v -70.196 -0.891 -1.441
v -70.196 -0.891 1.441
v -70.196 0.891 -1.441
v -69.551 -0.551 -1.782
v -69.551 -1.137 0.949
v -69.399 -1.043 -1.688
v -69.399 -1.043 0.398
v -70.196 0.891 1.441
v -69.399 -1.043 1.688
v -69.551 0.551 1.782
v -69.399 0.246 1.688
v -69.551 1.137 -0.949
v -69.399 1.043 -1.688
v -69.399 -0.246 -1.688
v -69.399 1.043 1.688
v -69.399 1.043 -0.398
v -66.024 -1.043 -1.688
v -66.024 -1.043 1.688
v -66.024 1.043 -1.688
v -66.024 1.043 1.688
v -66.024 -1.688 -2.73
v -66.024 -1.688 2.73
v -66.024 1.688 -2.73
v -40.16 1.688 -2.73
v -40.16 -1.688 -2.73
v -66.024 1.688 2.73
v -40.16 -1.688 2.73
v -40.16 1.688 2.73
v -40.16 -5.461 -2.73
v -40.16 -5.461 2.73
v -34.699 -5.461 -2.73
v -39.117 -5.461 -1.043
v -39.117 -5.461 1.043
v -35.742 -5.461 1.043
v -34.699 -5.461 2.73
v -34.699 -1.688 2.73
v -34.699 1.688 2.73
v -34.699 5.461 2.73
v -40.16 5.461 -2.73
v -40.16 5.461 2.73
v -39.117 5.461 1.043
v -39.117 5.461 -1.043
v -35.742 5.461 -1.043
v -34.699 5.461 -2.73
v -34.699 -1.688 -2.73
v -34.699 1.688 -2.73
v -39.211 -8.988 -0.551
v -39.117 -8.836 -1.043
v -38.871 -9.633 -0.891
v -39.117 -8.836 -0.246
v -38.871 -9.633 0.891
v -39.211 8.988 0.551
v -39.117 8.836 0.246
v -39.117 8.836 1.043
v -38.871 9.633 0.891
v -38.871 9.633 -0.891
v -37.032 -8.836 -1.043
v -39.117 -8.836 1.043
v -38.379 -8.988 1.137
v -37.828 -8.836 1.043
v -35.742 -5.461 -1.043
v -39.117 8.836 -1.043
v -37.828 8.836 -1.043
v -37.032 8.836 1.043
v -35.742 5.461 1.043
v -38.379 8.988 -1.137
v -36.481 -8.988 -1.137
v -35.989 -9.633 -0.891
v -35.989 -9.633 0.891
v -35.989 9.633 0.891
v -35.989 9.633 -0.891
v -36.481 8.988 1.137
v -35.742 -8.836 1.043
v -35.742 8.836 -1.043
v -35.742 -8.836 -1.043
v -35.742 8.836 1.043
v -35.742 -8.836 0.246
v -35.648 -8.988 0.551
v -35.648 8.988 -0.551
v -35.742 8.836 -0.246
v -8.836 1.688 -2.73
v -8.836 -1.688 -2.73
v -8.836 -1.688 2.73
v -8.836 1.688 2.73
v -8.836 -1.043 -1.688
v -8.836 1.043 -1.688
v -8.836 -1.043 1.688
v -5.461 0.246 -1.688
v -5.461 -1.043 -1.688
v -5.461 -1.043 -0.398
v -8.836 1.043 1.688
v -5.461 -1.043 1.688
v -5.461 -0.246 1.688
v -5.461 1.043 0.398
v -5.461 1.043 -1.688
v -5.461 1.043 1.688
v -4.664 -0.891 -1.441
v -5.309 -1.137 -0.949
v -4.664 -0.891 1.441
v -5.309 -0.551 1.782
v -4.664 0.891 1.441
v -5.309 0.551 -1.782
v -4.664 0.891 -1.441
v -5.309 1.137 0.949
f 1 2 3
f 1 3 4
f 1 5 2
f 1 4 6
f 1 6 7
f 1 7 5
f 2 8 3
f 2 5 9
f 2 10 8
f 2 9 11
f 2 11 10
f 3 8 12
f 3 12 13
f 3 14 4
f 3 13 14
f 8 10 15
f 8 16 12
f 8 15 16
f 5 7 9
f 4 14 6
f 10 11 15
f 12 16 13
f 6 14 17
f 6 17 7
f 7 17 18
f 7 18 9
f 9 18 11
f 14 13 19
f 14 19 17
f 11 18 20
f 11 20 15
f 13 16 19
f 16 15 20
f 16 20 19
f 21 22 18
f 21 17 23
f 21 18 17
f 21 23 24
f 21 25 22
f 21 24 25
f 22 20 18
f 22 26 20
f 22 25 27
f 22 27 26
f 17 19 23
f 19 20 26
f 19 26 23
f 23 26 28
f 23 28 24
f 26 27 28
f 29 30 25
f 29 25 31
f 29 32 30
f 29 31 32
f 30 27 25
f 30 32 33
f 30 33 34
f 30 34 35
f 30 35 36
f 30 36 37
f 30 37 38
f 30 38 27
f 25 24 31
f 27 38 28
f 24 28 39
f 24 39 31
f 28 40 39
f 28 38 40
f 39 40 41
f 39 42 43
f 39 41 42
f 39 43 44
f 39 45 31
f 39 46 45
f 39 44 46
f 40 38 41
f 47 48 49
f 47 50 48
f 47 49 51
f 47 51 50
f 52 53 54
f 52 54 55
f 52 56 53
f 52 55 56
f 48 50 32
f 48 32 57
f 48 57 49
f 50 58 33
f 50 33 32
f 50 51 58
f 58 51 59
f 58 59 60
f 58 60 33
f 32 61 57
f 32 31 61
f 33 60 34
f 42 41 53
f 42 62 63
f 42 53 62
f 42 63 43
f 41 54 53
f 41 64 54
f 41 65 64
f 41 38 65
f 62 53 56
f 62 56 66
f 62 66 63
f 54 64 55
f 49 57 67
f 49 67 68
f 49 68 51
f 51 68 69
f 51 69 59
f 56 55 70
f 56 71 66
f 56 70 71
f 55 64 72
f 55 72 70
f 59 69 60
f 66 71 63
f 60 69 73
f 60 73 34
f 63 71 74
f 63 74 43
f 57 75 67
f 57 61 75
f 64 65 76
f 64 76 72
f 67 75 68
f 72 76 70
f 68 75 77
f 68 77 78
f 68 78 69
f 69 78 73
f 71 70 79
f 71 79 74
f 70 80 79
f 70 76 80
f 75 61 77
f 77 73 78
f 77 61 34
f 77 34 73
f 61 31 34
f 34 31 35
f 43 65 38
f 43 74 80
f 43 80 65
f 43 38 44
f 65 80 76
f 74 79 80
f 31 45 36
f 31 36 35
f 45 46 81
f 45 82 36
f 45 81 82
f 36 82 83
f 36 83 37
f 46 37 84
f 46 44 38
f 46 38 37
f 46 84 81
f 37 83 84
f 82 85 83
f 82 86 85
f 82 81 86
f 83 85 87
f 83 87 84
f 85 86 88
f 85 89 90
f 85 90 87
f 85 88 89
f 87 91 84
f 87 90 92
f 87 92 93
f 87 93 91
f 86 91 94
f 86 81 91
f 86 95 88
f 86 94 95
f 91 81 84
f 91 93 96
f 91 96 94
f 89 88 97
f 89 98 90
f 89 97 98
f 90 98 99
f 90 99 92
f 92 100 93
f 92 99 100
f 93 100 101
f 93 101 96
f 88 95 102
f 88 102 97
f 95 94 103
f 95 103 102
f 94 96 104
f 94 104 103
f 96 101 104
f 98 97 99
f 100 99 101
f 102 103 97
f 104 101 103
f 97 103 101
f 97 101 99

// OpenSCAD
sc=(4+2*sqrt(5))/cos(16.5);
points=[[ -8.47213595499958, 0, 0 ],[ -7.94427190999916, -0.163118960624632, -0.100813061875577 ],[ -7.94427190999916, -0.163118960624632, 0.100813061875577 ],[ -7.94427190999916, 0.163118960624632, -0.100813061875577 ],[ -7.94427190999916, 0.163118960624632, 0.100813061875577 ],[ -7.871322893124, -0.201626123751154, 0.0623058987490541 ],[ -7.871322893124, -0.107390870623792, -0.128677106875998 ],[ -7.871322893124, 0.107390870623792, 0.128677106875998 ],[ -7.871322893124, 0.201626123751154, -0.0623058987490541 ],[ -7.85410196624968, -0.190983005625053, -0.118033988749895 ],[ -7.85410196624968, -0.190983005625053, 0.0278640450004204 ],[ -7.85410196624968, -0.190983005625053, 0.118033988749895 ],[ -7.85410196624968, -0.0450849718747373, -0.118033988749895 ],[ -7.85410196624968, 0.0450849718747373, 0.118033988749895 ],[ -7.85410196624968, 0.190983005625053, -0.118033988749895 ],[ -7.85410196624968, 0.190983005625053, -0.0278640450004204 ],[ -7.85410196624968, 0.190983005625053, 0.118033988749895 ],[ -7.66311896062463, 0, -1.30901699437495 ],[ -7.47213595499958, -0.309016994374947, -0.190983005625053 ],[ -7.47213595499958, -0.309016994374947, 0.190983005625053 ],[ -7.47213595499958, -0.190983005625053, -0.118033988749895 ],[ -7.47213595499958, -0.190983005625053, 0.118033988749895 ],[ -7.47213595499958, 0.190983005625053, -0.118033988749895 ],[ -7.47213595499958, 0.190983005625053, 0.118033988749895 ],[ -7.47213595499958, 0.309016994374947, -0.190983005625053 ],[ -7.47213595499958, 0.309016994374947, 0.190983005625053 ],[ -4.54508497187474, -0.309016994374947, -0.618033988749895 ],[ -4.54508497187474, -0.309016994374947, 0.618033988749895 ],[ -4.54508497187474, 0.309016994374947, -0.618033988749895 ],[ -4.54508497187474, 0.309016994374947, 0.618033988749895 ],[ -4.43769410125095, -0.0623058987490541, 1.01722092687432 ],[ -4.43769410125095, 0.0623058987490541, -1.01722092687432 ],[ -4.42705098312484, -0.118033988749895, -1 ],[ -4.42705098312484, -0.118033988749895, -0.618033988749895 ],[ -4.42705098312484, -0.118033988749895, 0.618033988749895 ],[ -4.42705098312484, -0.118033988749895, 1 ],[ -4.42705098312484, -0.0278640450004204, 1 ],[ -4.42705098312484, 0.0278640450004204, -1 ],[ -4.42705098312484, 0.118033988749895, -1 ],[ -4.42705098312484, 0.118033988749895, -0.618033988749895 ],[ -4.42705098312484, 0.118033988749895, 0.618033988749895 ],[ -4.42705098312484, 0.118033988749895, 1 ],[ -4.39918693812442, -0.100813061875577, -1.09016994374947 ],[ -4.39918693812442, -0.100813061875577, 1.09016994374947 ],[ -4.39918693812442, 0.100813061875577, -1.09016994374947 ],[ -4.39918693812442, 0.100813061875577, 1.09016994374947 ],[ -4.34345884812358, -0.128677106875998, -1.01722092687432 ],[ -4.34345884812358, 0.128677106875998, 1.01722092687432 ],[ -4.28115294937453, -0.118033988749895, -1 ],[ -4.28115294937453, 0.118033988749895, 1 ],[ -4.23606797749979, 0, -1.61803398874989 ],[ -4.23606797749979, 0, 1.61803398874989 ],[ -4.19098300562505, -0.118033988749895, 1 ],[ -4.19098300562505, 0.118033988749895, -1 ],[ -4.128677106876, -0.128677106875998, 1.01722092687432 ],[ -4.128677106876, 0.128677106875998, -1.01722092687432 ],[ -4.07294901687516, -0.100813061875577, -1.09016994374947 ],[ -4.07294901687516, -0.100813061875577, 1.09016994374947 ],[ -4.07294901687516, 0.100813061875577, -1.09016994374947 ],[ -4.07294901687516, 0.100813061875577, 1.09016994374947 ],[ -4.04508497187474, -0.118033988749895, -1 ],[ -4.04508497187474, -0.118033988749895, -0.618033988749895 ],[ -4.04508497187474, -0.118033988749895, 0.618033988749895 ],[ -4.04508497187474, -0.118033988749895, 1 ],[ -4.04508497187474, -0.0278640450004204, -1 ],[ -4.04508497187474, 0.0278640450004204, 1 ],[ -4.04508497187474, 0.118033988749895, -1 ],[ -4.04508497187474, 0.118033988749895, -0.618033988749895 ],[ -4.04508497187474, 0.118033988749895, 0.618033988749895 ],[ -4.04508497187474, 0.118033988749895, 1 ],[ -4.03444185374863, -0.0623058987490541, -1.01722092687432 ],[ -4.03444185374863, 0.0623058987490541, 1.01722092687432 ],[ -3.92705098312484, -0.309016994374947, -0.618033988749895 ],[ -3.92705098312484, -0.309016994374947, 0.618033988749895 ],[ -3.92705098312484, 0.309016994374947, -0.618033988749895 ],[ -3.92705098312484, 0.309016994374947, 0.618033988749895 ],[ -1, -0.309016994374947, -0.190983005625053 ],[ -1, -0.309016994374947, 0.190983005625053 ],[ -1, -0.190983005625053, -0.118033988749895 ],[ -1, -0.190983005625053, 0.118033988749895 ],[ -1, 0.190983005625053, -0.118033988749895 ],[ -1, 0.190983005625053, 0.118033988749895 ],[ -1, 0.309016994374947, -0.190983005625053 ],[ -1, 0.309016994374947, 0.190983005625053 ],[ -0.809016994374947, 0, 1.30901699437495 ],[ -0.618033988749895, -0.190983005625053, -0.118033988749895 ],[ -0.618033988749895, -0.190983005625053, -0.0278640450004204 ],[ -0.618033988749895, -0.190983005625053, 0.118033988749895 ],[ -0.618033988749895, -0.0450849718747373, 0.118033988749895 ],[ -0.618033988749895, 0.0450849718747373, -0.118033988749895 ],[ -0.618033988749895, 0.190983005625053, -0.118033988749895 ],[ -0.618033988749895, 0.190983005625053, 0.0278640450004204 ],[ -0.618033988749895, 0.190983005625053, 0.118033988749895 ],[ -0.600813061875577, -0.201626123751154, -0.0623058987490541 ],[ -0.600813061875577, -0.107390870623792, 0.128677106875998 ],[ -0.600813061875577, 0.107390870623792, -0.128677106875998 ],[ -0.600813061875577, 0.201626123751154, 0.0623058987490541 ],[ -0.52786404500042, -0.163118960624632, -0.100813061875577 ],[ -0.52786404500042, -0.163118960624632, 0.100813061875577 ],[ -0.52786404500042, 0.163118960624632, -0.100813061875577 ],[ -0.52786404500042, 0.163118960624632, 0.100813061875577 ],[ 0, 0, 0 ]];

scale(sc) rotate([90.000000,0,0]) rotate([0,0,0.000000]) render() {
    color("#00993F") polyhedron(points,faces=[[ 21, 10, 11 ],[ 20, 9, 10 ],[ 12, 14, 3 ],[ 21, 20, 10 ],[ 1, 9, 6 ],[ 10, 9, 1 ],[ 2, 5, 1 ],[ 11, 5, 2 ],[ 15, 16, 4 ],[ 13, 11, 2 ],[ 23, 16, 15 ],[ 9, 20, 12 ],[ 6, 12, 3 ],[ 16, 23, 13 ],[ 7, 16, 13 ],[ 3, 8, 4 ],[ 4, 16, 7 ],[ 7, 13, 2 ],[ 23, 21, 13 ],[ 3, 4, 2, 1 ],[ 13, 21, 11 ],[ 8, 15, 4 ],[ 3, 1, 6 ],[ 5, 11, 10 ],[ 6, 9, 12 ],[ 8, 14, 15 ],[ 5, 10, 1 ],[ 14, 8, 3 ],[ 20, 21, 23, 22 ],[ 20, 22, 12 ],[ 22, 23, 15 ],[ 2, 4, 7 ],[ 22, 15, 14 ],[ 12, 22, 14 ]]);
    color("#EB5200") polyhedron(points,faces=[[ 18, 24, 25, 19 ],[ 25, 83, 77, 19 ],[ 77, 76, 18, 19 ],[ 25, 24, 82, 83 ],[ 82, 76, 77, 83 ],[ 76, 82, 24, 18 ]]);
    color("#FFB31A") polyhedron(points,faces=[[ 54, 52, 43 ],[ 62, 34, 52 ],[ 30, 35, 36 ],[ 43, 45, 59, 57 ],[ 68, 65, 69 ],[ 45, 41, 47 ],[ 40, 41, 36 ],[ 59, 45, 47 ],[ 52, 34, 35 ],[ 54, 63, 52 ],[ 40, 34, 62, 68 ],[ 59, 71, 57 ],[ 34, 36, 35 ],[ 68, 62, 65 ],[ 71, 69, 65 ],[ 43, 57, 54 ],[ 65, 63, 57 ],[ 43, 30, 45 ],[ 35, 30, 43 ],[ 71, 65, 57 ],[ 34, 40, 36 ],[ 49, 69, 59 ],[ 62, 63, 65 ],[ 57, 63, 54 ],[ 36, 41, 45 ],[ 47, 41, 49 ],[ 40, 68, 49 ],[ 30, 36, 45 ],[ 63, 62, 52 ],[ 69, 71, 59 ],[ 49, 68, 69 ],[ 41, 40, 49 ],[ 47, 49, 59 ],[ 52, 35, 43 ]]);
    color("#D91218") polyhedron(points,faces=[[ 94, 87, 88 ],[ 100, 98, 94 ],[ 79, 87, 86 ],[ 92, 96, 100 ],[ 80, 78, 89 ],[ 100, 99, 97, 98 ],[ 78, 86, 85 ],[ 99, 90, 95 ],[ 87, 79, 88 ],[ 93, 85, 86 ],[ 95, 89, 97 ],[ 79, 81, 88 ],[ 86, 87, 98 ],[ 97, 93, 98 ],[ 85, 93, 97 ],[ 78, 79, 86 ],[ 96, 91, 99 ],[ 80, 90, 91 ],[ 96, 92, 91 ],[ 93, 86, 98 ],[ 91, 90, 99 ],[ 88, 92, 100 ],[ 81, 80, 91 ],[ 89, 78, 85 ],[ 90, 80, 89 ],[ 94, 88, 100 ],[ 81, 91, 92 ],[ 88, 81, 92 ],[ 100, 96, 99 ],[ 95, 90, 89 ],[ 98, 87, 94 ],[ 89, 85, 97 ],[ 81, 79, 78, 80 ],[ 97, 99, 95 ]]);
    color("#008EC2") polyhedron(points,faces=[[ 70, 64, 58 ],[ 44, 31, 42 ],[ 46, 32, 48 ],[ 39, 33, 37 ],[ 37, 32, 42 ],[ 33, 61, 48 ],[ 48, 60, 56 ],[ 55, 53, 44 ],[ 66, 67, 53 ],[ 38, 31, 44 ],[ 31, 38, 37 ],[ 64, 66, 58 ],[ 44, 58, 55 ],[ 67, 61, 33, 39 ],[ 56, 58, 44, 42 ],[ 55, 66, 53 ],[ 48, 61, 60 ],[ 58, 66, 55 ],[ 70, 60, 64 ],[ 31, 37, 42 ],[ 53, 38, 44 ],[ 42, 32, 46 ],[ 53, 39, 38 ],[ 32, 33, 48 ],[ 61, 67, 64 ],[ 33, 32, 37 ],[ 67, 39, 53 ],[ 56, 70, 58 ],[ 60, 70, 56 ],[ 61, 64, 60 ],[ 67, 66, 64 ],[ 56, 42, 46 ],[ 39, 37, 38 ],[ 46, 48, 56 ]]);
    color("#7D36D3") polyhedron(points,faces=[[ 28, 29, 27, 26 ],[ 73, 75, 74, 72 ],[ 73, 27, 29, 75 ],[ 26, 27, 73, 72 ],[ 29, 28, 74, 75 ],[ 74, 28, 26, 72 ]]);
}
